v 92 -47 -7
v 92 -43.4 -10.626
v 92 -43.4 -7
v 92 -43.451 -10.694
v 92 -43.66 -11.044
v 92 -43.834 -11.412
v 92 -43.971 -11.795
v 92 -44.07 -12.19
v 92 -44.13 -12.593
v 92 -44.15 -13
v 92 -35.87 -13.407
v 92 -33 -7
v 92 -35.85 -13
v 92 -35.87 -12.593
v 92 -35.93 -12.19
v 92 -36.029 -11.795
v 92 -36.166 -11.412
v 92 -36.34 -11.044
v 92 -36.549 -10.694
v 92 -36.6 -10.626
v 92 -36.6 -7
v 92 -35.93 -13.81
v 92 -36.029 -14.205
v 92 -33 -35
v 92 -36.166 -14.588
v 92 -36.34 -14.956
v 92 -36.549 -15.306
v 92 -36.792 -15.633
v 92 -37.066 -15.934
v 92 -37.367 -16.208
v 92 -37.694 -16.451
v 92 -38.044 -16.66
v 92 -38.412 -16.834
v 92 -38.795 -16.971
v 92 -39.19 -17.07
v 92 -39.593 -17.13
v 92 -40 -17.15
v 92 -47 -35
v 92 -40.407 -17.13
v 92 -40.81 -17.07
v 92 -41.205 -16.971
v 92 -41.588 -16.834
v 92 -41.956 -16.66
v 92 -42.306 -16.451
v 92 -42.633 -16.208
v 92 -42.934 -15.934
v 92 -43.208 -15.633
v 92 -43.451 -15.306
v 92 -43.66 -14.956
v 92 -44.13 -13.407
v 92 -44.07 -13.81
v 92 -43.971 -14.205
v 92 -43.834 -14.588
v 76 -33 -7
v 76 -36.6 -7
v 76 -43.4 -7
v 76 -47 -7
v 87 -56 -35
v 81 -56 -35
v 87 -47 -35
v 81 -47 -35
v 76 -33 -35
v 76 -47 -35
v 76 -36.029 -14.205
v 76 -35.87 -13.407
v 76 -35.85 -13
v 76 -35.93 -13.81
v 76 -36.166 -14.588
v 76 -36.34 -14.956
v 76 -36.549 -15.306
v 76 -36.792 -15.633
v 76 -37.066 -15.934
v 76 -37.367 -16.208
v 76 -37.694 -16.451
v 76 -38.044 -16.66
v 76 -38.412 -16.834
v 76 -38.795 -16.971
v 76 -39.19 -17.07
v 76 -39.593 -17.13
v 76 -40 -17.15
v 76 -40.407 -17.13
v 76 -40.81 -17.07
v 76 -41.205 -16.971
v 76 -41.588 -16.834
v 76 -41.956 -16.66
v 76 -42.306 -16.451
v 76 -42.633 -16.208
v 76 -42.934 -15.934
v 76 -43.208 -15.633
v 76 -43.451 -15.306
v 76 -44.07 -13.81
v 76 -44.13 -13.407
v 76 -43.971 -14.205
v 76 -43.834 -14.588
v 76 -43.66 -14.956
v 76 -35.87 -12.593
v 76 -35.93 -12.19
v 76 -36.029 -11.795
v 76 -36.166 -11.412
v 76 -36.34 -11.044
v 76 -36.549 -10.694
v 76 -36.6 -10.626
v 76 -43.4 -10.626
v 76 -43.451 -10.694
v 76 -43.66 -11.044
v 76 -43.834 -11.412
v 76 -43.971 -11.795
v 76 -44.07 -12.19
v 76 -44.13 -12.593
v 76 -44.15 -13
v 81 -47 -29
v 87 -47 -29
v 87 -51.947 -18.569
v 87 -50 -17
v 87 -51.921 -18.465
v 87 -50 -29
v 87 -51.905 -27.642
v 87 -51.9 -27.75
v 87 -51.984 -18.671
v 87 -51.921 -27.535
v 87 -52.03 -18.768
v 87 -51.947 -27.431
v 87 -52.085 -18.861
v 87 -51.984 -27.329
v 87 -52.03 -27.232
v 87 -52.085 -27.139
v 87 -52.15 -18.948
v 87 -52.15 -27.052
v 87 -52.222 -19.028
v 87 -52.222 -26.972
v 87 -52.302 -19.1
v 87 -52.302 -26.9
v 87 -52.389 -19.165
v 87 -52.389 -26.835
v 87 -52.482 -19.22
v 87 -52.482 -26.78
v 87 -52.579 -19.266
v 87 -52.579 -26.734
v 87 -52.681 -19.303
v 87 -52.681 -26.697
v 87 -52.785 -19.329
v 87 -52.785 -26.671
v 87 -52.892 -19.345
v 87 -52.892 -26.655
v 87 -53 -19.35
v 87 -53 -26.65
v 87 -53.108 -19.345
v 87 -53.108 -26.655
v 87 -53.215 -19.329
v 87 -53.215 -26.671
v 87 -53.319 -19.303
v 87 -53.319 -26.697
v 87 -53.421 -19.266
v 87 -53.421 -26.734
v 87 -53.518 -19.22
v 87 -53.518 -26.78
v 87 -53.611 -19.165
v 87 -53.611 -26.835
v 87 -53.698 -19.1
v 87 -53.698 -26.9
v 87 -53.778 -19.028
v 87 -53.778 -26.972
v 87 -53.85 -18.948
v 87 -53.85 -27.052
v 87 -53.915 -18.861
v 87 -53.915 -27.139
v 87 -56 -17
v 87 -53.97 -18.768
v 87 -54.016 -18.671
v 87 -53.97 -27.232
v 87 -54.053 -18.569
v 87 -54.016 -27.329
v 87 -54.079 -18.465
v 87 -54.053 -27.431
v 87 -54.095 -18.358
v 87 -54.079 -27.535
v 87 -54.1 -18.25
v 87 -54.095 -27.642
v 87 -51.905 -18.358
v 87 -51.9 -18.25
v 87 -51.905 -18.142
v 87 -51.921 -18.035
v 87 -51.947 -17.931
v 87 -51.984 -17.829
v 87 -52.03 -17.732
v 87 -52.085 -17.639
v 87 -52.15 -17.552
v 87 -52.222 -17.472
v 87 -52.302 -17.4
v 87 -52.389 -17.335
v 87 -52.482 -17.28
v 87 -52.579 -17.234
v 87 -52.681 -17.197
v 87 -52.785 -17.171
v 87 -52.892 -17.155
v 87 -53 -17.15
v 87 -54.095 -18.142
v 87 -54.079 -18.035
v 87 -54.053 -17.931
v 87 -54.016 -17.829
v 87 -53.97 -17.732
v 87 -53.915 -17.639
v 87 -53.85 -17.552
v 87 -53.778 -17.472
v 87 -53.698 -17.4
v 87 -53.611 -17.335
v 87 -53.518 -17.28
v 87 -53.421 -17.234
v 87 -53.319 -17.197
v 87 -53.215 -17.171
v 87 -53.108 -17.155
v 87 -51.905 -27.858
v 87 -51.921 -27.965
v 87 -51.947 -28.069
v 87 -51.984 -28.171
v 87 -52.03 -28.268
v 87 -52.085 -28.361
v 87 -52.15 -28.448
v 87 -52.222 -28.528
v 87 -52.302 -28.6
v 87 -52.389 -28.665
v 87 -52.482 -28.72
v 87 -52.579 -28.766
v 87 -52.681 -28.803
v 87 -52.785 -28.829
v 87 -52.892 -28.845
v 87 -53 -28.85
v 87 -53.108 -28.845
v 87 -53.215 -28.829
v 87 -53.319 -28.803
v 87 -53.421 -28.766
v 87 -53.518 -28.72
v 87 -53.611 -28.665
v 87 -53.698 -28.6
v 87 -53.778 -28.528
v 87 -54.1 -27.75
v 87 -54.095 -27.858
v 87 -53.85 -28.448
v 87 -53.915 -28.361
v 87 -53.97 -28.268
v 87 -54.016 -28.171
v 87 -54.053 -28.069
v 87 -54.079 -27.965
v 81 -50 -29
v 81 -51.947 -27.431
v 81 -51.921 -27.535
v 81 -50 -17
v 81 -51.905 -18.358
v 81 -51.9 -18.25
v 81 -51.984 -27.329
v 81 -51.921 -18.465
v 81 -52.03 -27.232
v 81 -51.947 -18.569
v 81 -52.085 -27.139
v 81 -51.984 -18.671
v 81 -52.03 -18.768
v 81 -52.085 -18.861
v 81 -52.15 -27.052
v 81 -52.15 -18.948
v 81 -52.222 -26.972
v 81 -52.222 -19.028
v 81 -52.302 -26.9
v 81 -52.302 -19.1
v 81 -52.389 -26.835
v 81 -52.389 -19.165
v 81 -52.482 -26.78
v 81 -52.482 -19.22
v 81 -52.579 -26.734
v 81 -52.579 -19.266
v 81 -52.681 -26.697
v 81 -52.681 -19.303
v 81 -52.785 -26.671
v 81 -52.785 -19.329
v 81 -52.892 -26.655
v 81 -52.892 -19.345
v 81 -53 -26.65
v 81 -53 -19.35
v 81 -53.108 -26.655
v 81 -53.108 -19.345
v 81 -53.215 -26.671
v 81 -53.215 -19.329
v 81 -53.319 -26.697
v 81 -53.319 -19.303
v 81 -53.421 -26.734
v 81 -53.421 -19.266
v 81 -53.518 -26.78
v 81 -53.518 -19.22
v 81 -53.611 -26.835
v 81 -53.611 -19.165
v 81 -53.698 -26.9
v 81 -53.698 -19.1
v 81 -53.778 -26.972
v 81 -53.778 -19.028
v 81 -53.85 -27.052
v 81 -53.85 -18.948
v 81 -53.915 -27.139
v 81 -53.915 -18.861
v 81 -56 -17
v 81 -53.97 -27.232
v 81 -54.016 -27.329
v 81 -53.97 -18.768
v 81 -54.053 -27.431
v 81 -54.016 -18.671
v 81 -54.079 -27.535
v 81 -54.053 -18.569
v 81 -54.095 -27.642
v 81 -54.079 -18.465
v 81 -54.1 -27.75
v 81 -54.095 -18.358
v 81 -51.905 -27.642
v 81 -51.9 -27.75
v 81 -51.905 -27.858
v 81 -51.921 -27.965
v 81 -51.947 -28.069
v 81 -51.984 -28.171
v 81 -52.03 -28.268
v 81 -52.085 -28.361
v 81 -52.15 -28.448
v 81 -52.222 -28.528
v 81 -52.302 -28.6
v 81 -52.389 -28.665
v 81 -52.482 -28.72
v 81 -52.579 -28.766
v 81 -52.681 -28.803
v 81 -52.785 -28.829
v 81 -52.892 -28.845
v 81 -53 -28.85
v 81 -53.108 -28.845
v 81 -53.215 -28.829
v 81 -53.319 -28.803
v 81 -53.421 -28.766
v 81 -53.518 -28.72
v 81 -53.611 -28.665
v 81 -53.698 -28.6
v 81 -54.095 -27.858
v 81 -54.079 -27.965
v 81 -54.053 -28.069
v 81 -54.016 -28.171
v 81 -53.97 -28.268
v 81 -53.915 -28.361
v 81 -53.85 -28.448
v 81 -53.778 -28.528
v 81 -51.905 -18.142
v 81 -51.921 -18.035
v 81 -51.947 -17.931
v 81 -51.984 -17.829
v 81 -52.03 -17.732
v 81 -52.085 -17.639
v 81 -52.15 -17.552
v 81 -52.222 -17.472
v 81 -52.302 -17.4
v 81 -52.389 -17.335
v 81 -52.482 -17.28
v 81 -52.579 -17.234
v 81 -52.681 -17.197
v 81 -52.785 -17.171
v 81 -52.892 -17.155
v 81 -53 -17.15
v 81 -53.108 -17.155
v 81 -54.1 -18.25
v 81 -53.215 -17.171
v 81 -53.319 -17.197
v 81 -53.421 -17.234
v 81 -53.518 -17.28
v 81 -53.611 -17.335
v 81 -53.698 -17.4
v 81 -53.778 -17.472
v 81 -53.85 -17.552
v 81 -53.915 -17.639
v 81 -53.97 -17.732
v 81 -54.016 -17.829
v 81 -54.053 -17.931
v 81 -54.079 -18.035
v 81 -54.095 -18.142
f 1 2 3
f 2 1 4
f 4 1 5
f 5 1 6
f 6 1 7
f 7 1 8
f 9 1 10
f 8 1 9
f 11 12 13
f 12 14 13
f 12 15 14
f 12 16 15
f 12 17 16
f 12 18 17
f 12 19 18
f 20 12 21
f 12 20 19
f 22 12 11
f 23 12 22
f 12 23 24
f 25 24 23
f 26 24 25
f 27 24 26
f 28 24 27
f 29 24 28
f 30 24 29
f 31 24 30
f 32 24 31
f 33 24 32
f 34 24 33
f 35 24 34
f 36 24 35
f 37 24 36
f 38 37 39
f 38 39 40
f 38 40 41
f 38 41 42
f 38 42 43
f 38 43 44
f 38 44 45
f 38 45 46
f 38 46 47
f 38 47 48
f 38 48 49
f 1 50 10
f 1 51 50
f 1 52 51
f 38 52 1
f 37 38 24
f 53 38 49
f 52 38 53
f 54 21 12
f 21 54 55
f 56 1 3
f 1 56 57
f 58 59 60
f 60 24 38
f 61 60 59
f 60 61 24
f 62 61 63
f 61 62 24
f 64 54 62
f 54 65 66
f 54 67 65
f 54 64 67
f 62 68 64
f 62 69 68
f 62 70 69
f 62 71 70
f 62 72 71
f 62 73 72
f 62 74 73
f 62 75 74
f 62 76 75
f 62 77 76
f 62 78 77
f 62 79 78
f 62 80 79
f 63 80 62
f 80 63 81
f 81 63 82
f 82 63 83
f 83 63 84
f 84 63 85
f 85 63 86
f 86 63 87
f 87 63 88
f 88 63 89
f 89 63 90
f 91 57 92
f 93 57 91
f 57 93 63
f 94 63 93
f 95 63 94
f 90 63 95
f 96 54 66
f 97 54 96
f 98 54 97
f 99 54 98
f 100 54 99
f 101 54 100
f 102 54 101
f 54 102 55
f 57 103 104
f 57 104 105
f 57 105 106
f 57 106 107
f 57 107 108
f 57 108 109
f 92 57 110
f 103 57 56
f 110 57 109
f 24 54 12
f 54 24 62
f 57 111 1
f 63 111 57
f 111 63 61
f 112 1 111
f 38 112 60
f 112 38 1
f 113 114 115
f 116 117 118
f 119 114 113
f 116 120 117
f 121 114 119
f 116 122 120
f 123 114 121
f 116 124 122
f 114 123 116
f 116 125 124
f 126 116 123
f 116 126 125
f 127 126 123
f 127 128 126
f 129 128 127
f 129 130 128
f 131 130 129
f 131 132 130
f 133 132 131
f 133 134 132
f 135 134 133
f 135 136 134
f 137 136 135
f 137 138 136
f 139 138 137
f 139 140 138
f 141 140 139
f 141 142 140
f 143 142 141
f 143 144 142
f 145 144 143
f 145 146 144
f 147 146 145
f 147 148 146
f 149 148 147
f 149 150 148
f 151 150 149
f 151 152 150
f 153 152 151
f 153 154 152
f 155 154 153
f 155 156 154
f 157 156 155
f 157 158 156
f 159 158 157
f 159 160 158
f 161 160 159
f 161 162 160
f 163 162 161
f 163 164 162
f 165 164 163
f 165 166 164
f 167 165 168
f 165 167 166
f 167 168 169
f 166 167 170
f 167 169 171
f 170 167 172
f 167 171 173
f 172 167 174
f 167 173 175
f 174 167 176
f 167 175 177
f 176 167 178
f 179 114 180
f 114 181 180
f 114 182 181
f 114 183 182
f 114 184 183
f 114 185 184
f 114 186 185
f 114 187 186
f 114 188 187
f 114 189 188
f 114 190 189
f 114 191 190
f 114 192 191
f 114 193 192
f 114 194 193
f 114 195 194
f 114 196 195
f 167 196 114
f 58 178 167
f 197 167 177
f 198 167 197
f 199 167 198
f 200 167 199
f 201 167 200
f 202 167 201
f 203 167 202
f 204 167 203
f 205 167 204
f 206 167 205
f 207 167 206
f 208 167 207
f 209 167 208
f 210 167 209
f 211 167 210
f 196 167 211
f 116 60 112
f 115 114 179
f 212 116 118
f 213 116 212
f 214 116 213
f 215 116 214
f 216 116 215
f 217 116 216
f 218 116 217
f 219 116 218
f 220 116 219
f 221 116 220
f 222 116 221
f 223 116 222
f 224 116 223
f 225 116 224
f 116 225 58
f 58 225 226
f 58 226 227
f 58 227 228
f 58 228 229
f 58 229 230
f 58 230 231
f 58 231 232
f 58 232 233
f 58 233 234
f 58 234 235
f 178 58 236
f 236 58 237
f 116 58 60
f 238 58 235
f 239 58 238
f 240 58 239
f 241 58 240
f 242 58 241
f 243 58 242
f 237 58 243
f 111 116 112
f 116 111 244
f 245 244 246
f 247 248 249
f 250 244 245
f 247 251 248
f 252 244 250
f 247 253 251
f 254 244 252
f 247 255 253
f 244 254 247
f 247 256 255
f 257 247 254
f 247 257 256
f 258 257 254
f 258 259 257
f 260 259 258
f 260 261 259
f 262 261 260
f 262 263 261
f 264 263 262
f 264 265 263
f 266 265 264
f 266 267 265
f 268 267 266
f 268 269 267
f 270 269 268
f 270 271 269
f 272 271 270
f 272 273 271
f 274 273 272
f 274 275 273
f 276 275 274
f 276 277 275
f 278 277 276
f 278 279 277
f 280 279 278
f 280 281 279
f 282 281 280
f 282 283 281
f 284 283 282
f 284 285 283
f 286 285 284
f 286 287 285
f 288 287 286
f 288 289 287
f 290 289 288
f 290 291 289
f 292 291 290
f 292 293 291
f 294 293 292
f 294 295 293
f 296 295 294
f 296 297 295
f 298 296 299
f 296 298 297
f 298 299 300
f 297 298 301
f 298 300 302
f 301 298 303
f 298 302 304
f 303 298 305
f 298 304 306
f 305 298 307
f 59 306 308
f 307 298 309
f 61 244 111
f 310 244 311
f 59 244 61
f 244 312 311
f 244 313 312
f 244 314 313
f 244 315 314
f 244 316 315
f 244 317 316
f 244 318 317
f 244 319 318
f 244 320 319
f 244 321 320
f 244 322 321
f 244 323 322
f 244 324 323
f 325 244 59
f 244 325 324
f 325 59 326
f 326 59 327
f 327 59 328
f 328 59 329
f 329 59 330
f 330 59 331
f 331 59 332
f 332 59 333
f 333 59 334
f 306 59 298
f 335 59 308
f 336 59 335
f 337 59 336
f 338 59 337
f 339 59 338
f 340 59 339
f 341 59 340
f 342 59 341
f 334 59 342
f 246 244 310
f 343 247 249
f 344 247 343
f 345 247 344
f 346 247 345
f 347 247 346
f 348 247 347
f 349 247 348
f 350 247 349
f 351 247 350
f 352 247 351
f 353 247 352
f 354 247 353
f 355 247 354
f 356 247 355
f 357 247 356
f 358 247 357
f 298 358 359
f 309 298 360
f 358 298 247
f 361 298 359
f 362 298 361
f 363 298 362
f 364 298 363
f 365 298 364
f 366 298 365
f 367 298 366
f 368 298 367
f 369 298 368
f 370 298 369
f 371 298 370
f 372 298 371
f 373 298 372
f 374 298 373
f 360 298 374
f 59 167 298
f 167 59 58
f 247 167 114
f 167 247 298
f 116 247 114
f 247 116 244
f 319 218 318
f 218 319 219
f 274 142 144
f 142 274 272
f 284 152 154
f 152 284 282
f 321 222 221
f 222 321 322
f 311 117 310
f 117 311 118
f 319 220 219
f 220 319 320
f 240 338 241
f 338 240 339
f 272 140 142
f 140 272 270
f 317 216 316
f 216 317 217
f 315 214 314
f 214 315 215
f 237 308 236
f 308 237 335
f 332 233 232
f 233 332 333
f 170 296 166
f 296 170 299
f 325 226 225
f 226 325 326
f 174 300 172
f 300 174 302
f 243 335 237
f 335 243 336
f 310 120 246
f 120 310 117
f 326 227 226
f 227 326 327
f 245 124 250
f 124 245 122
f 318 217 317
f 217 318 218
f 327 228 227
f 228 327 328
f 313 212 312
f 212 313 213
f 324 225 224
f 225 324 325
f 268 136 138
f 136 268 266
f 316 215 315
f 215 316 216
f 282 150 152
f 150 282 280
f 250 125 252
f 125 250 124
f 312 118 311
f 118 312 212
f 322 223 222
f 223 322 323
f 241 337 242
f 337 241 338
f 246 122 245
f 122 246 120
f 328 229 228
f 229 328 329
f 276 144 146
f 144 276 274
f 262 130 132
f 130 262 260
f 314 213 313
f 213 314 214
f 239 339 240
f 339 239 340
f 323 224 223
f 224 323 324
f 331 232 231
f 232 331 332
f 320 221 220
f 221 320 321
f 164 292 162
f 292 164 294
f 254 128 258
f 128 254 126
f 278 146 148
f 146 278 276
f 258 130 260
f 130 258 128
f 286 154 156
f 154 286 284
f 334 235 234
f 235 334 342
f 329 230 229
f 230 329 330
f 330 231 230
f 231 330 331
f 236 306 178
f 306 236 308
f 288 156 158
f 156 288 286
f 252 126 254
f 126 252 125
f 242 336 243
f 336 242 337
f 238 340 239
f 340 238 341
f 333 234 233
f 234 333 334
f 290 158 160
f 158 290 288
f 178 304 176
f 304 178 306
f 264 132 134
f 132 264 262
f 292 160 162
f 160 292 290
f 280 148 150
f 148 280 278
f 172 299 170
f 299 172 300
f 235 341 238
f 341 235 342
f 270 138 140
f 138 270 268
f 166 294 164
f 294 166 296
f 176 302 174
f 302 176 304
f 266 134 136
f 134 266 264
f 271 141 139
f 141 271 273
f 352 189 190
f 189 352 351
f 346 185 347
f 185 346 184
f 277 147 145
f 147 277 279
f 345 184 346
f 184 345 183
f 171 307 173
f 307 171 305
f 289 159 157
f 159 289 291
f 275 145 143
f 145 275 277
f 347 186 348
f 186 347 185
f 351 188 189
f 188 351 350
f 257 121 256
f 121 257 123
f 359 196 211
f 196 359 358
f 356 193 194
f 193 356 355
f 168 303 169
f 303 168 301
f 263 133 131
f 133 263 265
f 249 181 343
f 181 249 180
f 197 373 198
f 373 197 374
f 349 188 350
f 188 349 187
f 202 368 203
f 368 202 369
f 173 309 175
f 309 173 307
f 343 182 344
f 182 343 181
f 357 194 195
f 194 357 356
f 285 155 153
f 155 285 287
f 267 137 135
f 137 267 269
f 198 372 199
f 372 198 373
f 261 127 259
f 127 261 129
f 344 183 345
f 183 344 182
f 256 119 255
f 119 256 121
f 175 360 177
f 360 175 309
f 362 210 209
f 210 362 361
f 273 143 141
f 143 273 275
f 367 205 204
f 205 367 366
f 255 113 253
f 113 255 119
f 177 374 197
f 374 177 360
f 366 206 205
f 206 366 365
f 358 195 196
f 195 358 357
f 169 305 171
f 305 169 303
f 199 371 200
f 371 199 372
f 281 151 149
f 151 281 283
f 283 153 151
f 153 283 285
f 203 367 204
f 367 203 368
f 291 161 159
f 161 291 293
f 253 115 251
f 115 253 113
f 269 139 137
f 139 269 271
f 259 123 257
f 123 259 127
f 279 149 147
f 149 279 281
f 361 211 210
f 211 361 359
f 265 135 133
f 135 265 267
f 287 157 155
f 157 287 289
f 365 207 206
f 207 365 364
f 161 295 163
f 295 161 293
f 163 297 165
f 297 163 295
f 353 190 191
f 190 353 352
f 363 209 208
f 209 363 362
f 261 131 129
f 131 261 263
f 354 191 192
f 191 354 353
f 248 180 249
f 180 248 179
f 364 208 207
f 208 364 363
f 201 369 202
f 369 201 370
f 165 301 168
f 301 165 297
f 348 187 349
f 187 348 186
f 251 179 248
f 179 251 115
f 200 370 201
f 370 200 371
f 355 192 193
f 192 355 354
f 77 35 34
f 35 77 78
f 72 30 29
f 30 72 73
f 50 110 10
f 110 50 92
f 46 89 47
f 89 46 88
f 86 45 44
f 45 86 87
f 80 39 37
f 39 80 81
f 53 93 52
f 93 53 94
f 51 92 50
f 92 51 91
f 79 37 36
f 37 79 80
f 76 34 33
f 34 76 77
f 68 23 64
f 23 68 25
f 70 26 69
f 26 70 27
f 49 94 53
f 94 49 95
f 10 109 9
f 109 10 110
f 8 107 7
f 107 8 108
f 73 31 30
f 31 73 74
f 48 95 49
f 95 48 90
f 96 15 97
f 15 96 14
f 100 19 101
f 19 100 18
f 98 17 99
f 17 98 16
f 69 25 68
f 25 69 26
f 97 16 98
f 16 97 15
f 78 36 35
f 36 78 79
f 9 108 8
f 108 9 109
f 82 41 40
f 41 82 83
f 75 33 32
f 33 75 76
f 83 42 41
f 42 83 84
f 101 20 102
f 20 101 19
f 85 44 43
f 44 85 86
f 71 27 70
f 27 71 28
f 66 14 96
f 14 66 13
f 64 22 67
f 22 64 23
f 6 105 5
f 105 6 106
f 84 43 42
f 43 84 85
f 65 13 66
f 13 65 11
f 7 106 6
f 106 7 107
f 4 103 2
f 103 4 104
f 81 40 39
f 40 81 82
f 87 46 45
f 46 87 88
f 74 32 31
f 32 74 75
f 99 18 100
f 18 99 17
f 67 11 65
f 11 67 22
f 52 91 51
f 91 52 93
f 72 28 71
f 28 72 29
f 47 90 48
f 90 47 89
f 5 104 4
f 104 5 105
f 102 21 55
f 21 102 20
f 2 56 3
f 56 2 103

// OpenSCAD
// file: ../fj.scad
// FreeJet FJ-1 - shared dimensions and helpers.
// Coordinates (mm): X = carriage travel (left -> right, 0 = inner face of the left plate)
//                   Y = paper travel (paper moves toward +Y, 0 = printhead nozzle line)
//                   Z = up (0 = paper surface on the platen)
// Every part file includes this, so changing a number here moves everything.

$fn = 64;
e = 0.01;
tol = 0.25;          // clearance for printed fits

// ---- frame ----------------------------------------------------------------
inner_w   = 360;     // distance between the side plates
plate_t   = 8;
rod_d     = 8;       // all rods: 8 mm x 400 mm smooth rod
rod_len   = 400;
plate_y0  = -112;    // side plate outline in Y
plate_y1  = 88;
plate_z0  = -70;     // bottom of the feet
plate_z1  = 70;

// ---- carriage rods ------------------------------------------------------------
rail_y    = -42;
rail_lo_z = 14;
rail_hi_z = 50;
belt_y    = -60;     // axis line of the X motor pulley and idler (both vertical)
belt_z    = 32;      // height of the belt centre
belt_r    = 20*2/PI/2;          // 20T GT2 pitch radius
belt_front_y = belt_y + belt_r; // strand clamped to the carriage
belt_back_y  = belt_y - belt_r; // return strand, passes behind the carriage

// ---- paper path -------------------------------------------------------------
tire_od   = 22;      // drive and pinch roller outside diameter
in_y      = -76;     // input nip (rollers before the printhead)
out_y     = 52;      // output nip (star wheels after the printhead)
shaft_z   = -tire_od/2;
pinch_z   = tire_od/2;
star_od   = 18;
star_z    = star_od/2;
platen_rod_y = [-40, 26];
platen_rod_z = -13;
platen_y0 = -62;     // platen top surface extent
platen_y1 = 84;
sensor_y  = -54;     // paper lever switch
paper_x0  = 70;      // paper left edge (fixed guide)
paper_w   = 220;     // widest sheet
sensor_x  = paper_x0 + 14;   // paper lever switch X
tire_x    = [paper_x0+20, paper_x0+75, paper_x0+145, paper_x0+200];  // roller positions

// ---- feed drive ---------------------------------------------------------------
pulley_teeth = 76;   // printed GT2 pulleys on both roller shafts
feed_motor_y = -12;
feed_motor_z = -44;  // 400 mm closed GT2 loop around 76T + 76T + 20T

// ---- printhead / cartridge (MEASURE YOUR HP45 AND ADJUST) -----------------------
cart_w    = 24.5;    // across the carriage travel (X)
cart_d    = 50;      // front-to-back (Y)
cart_h    = 62;
nz_back   = 19;      // nozzle line distance from the contact (back) face
head_gap  = 1.2;     // nozzle plate height above the paper
pad_z0    = 3;       // contact pad footprint origin above the cartridge bottom
carr_w    = 54;      // carriage width along X
park_x    = 33;      // carriage centre X when parked (capped)

// ---- service station ------------------------------------------------------------
home_x    = 30;      // carriage centre X where the home switch trips (firmware X = 0)
sled_engage = 9;     // sled travel when parked (cap pressed on the nozzles)
cap_x     = park_x + sled_engage;   // cap centre with the sled retracted
wiper_x   = 56;
spit_x    = 62;      // firmware spit_x_um = (spit_x - home_x) * 1000

// ---- hardware -----------------------------------------------------------------
lm8uu_d = 15; lm8uu_l = 24;
b608_d = 22; b608_w = 7;
m3 = 3.2; m3_head = 6; m3_nut = 6.4;   // across flats + tolerance
m25 = 2.7;
nema_hole = 31; nema_body = 42.3; nema_boss = 22.5;

module rod_hole(l=40, d=rod_d+tol) { cylinder(d=d, h=l, center=true); }
module m3_hole(l=40) { cylinder(d=m3, h=l, center=true); }
module m3_nut_trap(h=3) { cylinder(d=m3_nut/cos(30), h=h, $fn=6); }
module rounded_box(size, r=3) {
    hull() for (x=[r, size[0]-r], y=[r, size[1]-r]) translate([x, y, 0]) cylinder(r=r, h=size[2]);
}
module nema17_holes(l=20, slot=0) {
    for (x=[-1,1], y=[-1,1]) hull() for (s=[-slot/2, slot/2])
        translate([x*nema_hole/2, y*nema_hole/2 + s, 0]) cylinder(d=m3, h=l, center=true);
    hull() for (s=[-slot/2, slot/2]) translate([0, s, 0]) cylinder(d=nema_boss+1, h=l, center=true);
}

// ---- carriage details ------------------------------------------------------------
carr_z0   = head_gap + 2.5;   // carriage walls stop above the nozzle plate
carr_z1   = 64;
pcb_w     = 44;  pcb_h = 46;  pcb_t = 1.6;   // printhead board
pcb_back  = 5;                 // component height behind the board
cart_rest_z = 18;              // height (above cartridge bottom) of the side rest tabs; 0 = none
// main file
// Paper sensor holder: snaps onto the rear platen rod and holds a lever microswitch
// (KW11-3Z with a ~28 mm lever, 2x M2 holes 9.5 mm apart) so the lever tip pokes
// ~1.5 mm up through the slot in the first platen segment. Paper pushes it down.
include <../fj.scad>
module sensor_bracket() {
z0 = platen_rod_z - 22;
difference() {
    union() {
        translate([sensor_x - 8, platen_rod_y[0] - 7, z0]) cube([16, 14, platen_rod_z + 6 - z0]);
        translate([sensor_x - 3, sensor_y - 2, z0]) cube([6, platen_rod_y[0] - sensor_y + 2, 6]);
        translate([sensor_x - 3, sensor_y - 2, z0]) cube([6, 6, 18]);
    }
    translate([sensor_x, platen_rod_y[0], platen_rod_z]) rotate([0,90,0]) cylinder(d=rod_d + 0.3, h=40, center=true);
    translate([sensor_x, platen_rod_y[0], platen_rod_z + 6]) cube([20, rod_d - 1.2, 8], center=true);  // snap opening
    for (z=[-4.75, 4.75]) translate([sensor_x, sensor_y + 1, z0 + 12 + z]) rotate([0,90,0]) cylinder(d=2.2, h=10, center=true);
}
}
sensor_bracket();
